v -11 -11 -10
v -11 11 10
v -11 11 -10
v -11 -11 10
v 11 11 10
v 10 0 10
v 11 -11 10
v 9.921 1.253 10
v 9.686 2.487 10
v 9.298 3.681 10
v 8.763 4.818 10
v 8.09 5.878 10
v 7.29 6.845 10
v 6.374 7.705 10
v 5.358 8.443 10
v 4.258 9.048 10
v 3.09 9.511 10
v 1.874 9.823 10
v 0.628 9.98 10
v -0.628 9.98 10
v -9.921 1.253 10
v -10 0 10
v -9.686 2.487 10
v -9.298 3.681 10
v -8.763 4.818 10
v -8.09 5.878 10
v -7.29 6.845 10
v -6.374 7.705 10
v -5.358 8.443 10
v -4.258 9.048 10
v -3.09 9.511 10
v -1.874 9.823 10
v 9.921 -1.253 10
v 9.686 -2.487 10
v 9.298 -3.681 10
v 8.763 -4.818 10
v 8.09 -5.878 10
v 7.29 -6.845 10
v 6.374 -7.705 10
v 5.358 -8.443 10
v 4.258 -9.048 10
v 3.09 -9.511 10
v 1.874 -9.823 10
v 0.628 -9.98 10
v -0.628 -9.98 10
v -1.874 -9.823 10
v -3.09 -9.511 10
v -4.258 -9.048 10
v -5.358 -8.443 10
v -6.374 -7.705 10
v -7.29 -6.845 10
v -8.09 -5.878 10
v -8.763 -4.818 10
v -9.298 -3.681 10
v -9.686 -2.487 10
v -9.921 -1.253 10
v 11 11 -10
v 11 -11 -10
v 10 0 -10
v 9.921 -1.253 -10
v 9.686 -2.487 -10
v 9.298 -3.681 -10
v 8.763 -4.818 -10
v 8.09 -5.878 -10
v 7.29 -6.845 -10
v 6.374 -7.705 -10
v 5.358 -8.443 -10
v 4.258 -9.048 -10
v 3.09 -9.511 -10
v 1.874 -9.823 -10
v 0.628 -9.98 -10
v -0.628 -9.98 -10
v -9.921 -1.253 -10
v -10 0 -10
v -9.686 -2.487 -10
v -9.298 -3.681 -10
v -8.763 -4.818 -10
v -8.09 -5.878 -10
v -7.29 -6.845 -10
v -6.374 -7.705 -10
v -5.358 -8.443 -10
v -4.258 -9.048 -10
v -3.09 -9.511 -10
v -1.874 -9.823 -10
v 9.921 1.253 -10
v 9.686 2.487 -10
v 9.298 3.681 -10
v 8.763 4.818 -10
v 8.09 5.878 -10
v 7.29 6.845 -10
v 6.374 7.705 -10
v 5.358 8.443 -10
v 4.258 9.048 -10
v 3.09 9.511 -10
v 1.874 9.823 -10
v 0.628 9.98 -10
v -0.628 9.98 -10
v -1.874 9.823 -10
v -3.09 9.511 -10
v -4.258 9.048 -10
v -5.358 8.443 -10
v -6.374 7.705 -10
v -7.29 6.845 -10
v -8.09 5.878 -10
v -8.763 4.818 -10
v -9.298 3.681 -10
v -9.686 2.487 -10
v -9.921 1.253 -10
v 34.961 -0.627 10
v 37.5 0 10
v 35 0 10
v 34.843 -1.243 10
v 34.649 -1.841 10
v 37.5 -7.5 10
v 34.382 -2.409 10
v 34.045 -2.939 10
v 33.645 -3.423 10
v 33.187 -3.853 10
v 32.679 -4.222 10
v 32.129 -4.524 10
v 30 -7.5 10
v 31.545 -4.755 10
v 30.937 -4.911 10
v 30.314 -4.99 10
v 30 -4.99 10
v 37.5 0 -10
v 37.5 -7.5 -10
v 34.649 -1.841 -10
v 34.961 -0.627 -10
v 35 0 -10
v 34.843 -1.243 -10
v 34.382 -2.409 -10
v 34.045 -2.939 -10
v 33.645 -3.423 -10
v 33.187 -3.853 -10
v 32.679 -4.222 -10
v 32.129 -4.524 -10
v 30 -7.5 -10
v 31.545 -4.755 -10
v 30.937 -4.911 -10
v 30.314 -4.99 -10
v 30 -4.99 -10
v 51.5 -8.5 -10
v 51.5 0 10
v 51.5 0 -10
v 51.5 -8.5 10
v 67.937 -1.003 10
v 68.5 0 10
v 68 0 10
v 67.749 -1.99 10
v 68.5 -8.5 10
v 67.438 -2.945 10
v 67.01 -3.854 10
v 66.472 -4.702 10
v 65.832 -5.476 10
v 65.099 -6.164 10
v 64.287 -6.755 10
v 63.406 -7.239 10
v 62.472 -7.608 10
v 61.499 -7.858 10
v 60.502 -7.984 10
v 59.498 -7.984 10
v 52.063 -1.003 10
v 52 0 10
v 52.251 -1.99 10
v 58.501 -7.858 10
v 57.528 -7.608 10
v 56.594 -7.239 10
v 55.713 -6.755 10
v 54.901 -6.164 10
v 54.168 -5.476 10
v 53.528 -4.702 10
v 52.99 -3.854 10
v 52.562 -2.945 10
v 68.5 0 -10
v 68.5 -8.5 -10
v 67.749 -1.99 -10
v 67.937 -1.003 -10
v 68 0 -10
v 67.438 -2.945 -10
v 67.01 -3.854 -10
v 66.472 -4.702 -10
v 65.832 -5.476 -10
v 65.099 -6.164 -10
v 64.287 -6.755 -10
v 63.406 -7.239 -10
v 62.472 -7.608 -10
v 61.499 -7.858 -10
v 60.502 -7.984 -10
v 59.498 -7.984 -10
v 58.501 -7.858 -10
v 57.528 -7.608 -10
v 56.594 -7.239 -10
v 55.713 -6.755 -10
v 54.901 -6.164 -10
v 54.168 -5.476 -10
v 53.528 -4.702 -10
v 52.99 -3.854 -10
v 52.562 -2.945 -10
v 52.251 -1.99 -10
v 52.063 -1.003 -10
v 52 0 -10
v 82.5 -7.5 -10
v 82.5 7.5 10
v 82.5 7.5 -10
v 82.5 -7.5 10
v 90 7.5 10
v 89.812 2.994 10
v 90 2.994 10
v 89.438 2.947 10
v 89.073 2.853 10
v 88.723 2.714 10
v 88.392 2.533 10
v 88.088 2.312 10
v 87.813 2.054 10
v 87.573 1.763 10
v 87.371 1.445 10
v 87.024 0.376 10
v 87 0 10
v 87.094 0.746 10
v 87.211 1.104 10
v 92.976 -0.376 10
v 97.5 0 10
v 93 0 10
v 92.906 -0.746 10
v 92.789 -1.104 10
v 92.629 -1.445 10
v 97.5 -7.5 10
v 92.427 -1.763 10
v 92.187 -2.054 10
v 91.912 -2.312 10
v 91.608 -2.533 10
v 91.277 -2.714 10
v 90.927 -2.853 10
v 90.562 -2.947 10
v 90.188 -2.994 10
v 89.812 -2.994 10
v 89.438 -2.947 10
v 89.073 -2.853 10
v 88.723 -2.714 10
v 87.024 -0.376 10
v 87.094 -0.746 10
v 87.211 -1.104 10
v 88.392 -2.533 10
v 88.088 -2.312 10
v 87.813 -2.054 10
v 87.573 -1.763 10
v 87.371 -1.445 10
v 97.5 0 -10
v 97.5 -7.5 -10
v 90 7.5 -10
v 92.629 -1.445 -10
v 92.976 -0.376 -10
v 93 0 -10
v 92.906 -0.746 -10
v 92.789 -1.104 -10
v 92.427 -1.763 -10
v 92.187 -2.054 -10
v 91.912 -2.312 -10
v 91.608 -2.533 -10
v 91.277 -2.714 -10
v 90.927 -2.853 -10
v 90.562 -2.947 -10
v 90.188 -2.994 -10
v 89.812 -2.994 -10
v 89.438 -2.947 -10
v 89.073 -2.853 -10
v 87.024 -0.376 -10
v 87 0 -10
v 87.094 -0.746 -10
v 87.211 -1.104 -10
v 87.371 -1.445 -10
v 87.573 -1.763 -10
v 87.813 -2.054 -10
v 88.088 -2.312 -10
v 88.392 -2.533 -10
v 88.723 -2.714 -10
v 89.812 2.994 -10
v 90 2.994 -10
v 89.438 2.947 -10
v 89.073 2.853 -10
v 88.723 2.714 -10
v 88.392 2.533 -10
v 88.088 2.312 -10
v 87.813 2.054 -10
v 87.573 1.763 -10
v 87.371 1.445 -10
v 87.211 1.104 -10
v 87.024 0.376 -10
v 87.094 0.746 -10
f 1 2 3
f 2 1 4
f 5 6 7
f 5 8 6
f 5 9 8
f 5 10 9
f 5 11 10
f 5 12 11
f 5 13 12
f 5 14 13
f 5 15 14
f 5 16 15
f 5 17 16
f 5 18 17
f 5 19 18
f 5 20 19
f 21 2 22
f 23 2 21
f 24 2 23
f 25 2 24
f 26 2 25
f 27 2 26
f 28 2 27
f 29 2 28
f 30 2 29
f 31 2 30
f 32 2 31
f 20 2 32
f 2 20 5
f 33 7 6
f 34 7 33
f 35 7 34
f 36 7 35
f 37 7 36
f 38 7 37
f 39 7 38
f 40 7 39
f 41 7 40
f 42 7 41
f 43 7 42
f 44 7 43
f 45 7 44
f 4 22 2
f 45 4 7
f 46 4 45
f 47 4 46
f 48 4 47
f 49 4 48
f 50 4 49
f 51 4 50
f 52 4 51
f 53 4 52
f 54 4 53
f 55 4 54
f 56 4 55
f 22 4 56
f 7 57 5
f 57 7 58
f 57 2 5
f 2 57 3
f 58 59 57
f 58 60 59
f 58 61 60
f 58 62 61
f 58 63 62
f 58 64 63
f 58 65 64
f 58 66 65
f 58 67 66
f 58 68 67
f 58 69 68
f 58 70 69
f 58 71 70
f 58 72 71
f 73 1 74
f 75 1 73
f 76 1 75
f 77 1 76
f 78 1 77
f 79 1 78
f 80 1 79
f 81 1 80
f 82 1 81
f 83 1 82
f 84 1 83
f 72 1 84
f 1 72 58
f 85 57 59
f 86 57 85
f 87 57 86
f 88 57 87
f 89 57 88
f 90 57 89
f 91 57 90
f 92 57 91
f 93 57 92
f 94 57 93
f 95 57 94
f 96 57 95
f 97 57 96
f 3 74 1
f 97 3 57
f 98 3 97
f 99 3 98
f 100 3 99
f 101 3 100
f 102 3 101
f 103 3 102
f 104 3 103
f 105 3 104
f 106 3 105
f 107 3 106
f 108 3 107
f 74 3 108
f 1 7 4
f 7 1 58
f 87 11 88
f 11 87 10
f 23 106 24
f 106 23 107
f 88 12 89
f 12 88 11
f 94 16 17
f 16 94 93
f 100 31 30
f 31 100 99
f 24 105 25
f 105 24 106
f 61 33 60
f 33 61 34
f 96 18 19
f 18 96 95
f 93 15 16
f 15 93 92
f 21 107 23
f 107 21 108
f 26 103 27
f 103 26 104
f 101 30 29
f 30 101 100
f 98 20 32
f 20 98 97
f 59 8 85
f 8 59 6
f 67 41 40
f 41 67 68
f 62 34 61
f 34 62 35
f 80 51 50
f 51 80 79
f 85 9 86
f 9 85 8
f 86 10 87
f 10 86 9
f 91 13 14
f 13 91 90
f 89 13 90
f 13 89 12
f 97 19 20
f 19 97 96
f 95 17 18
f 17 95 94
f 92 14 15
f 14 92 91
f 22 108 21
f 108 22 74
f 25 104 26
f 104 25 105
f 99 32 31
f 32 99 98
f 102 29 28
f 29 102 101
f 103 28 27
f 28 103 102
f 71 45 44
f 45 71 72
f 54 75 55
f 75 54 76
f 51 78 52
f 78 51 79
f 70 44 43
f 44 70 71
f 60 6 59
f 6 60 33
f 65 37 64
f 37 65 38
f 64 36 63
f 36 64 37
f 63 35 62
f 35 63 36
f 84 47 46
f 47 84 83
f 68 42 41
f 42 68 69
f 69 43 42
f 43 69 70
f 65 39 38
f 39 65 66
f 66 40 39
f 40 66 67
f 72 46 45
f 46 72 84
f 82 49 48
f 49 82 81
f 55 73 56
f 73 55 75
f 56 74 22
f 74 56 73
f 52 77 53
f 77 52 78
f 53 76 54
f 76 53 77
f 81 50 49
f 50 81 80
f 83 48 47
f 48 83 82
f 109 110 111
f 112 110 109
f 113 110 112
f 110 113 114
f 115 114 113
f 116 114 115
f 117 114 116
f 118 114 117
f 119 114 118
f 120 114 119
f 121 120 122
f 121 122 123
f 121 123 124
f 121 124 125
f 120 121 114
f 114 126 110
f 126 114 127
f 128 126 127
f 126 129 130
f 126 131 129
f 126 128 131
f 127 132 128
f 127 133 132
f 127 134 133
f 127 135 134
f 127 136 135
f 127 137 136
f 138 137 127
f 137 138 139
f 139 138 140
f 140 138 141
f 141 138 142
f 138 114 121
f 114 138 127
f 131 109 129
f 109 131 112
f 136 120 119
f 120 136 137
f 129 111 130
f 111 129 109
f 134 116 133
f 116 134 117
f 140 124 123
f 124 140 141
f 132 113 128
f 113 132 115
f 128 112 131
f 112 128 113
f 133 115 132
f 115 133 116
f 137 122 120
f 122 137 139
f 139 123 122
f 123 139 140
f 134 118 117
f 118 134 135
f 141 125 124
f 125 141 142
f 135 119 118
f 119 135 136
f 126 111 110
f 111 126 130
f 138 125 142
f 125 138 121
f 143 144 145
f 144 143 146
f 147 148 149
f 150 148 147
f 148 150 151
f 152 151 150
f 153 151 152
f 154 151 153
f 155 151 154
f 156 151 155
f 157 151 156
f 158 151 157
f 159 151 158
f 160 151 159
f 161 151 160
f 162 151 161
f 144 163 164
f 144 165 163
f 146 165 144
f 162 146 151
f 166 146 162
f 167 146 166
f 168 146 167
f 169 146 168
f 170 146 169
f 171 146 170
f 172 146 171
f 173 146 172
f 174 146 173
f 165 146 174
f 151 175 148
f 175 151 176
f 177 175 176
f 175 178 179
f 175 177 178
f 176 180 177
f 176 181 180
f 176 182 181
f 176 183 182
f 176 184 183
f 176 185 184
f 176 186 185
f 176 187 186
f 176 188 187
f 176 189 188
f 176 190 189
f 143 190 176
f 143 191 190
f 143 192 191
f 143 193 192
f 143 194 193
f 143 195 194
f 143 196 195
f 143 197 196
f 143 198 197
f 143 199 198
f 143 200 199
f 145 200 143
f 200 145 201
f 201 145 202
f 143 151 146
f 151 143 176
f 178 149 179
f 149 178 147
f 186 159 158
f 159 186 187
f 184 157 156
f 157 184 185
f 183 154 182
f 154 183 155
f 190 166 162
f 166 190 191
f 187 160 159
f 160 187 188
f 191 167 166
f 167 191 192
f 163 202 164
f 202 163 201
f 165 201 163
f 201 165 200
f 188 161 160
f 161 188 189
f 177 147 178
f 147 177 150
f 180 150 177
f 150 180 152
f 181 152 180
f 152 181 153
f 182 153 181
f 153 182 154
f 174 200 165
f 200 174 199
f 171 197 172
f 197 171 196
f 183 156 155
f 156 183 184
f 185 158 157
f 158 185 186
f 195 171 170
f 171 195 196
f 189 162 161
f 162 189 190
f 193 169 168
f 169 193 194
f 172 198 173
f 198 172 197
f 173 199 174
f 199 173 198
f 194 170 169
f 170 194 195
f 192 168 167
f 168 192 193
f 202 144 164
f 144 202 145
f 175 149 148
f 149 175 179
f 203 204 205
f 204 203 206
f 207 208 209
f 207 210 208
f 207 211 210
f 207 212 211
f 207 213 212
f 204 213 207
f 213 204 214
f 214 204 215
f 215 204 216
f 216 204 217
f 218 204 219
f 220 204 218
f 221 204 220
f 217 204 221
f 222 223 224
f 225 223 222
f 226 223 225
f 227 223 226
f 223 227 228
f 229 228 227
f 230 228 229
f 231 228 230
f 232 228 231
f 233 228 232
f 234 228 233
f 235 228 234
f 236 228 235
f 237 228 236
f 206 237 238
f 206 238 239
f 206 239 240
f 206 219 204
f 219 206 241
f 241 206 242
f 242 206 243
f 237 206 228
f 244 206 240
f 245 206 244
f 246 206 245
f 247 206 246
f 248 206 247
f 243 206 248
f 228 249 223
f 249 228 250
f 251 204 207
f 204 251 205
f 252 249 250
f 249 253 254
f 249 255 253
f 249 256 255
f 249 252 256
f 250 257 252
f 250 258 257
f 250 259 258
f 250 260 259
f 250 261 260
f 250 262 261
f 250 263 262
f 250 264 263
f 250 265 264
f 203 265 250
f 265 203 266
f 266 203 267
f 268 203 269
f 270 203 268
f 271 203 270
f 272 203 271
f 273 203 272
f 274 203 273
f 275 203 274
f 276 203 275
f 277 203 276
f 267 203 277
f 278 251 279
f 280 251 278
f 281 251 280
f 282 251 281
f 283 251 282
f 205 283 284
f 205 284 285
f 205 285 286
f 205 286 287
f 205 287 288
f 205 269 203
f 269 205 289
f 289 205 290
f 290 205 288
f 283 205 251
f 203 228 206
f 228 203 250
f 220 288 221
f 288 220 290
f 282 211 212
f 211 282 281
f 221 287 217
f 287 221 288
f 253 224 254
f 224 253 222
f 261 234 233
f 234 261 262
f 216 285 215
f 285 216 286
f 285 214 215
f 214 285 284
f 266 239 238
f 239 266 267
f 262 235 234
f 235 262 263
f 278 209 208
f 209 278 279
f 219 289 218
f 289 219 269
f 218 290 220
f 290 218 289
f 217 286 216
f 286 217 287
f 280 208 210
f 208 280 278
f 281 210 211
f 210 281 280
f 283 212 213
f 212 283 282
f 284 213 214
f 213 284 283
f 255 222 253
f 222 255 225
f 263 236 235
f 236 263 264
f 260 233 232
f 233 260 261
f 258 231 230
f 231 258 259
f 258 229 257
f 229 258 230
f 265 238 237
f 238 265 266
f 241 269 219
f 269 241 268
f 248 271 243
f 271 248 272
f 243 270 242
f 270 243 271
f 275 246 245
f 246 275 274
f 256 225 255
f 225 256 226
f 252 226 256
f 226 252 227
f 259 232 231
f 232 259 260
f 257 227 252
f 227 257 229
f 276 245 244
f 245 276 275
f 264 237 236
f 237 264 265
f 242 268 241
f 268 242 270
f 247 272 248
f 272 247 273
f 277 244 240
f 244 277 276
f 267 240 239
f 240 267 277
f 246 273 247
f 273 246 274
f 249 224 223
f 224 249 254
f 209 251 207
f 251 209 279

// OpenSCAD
//
// Create the negative of a cylinder with a hollow cube.
// The cube will be of size [2*r + t, 2*r + t, h], and the cylinder will
// be subtracted from it. You could specify an angle for the cylinder. For
// example 360 will make a whole cylinder, 180 half cylinder and 90 quarter 
// of a cylinder.
// Params:
//   r -- Radio of the cylinder.
//   h -- Height of the cylinder.
//   t -- Thickness of the cube that will hold the negative of the cylinder.
//   angle -- [0-360] How much cylinder to build (360 whole cylinder, 
//            180 half cylinder, 90 quarter of cylinder, 0 no cylinder).
//   center -- [true, false] Center the object on origin [0, 0, 0]. 
//
module negative_cylinder(r=10, h=20, t=2, angle=360, center=false, $fn=10) 
{
  difference() 
  {
    cube([2*r + t, 2*r + t, h], center=center); 
    cylinder(r=r, h=h+2, center=center, $fn=$fn);
    translate([0, 0, -h])
      rotate_extrude(angle=360-angle)
        square([2*(r+t), 2*h]);
  }
}


negative_cylinder(r=10, h=20, t=2, center=true, $fn=50);

translate([30, 0, 0])
  negative_cylinder(r=5, h=20, t=5, angle=90, center=true, $fn=50);

translate([60, 0, 0])
  negative_cylinder(r=8, h=20, t=1, angle=180, center=true, $fn=50);

translate([90, 0, 0])
  negative_cylinder(r=3, h=20, t=9, angle=270, center=true, $fn=50);
